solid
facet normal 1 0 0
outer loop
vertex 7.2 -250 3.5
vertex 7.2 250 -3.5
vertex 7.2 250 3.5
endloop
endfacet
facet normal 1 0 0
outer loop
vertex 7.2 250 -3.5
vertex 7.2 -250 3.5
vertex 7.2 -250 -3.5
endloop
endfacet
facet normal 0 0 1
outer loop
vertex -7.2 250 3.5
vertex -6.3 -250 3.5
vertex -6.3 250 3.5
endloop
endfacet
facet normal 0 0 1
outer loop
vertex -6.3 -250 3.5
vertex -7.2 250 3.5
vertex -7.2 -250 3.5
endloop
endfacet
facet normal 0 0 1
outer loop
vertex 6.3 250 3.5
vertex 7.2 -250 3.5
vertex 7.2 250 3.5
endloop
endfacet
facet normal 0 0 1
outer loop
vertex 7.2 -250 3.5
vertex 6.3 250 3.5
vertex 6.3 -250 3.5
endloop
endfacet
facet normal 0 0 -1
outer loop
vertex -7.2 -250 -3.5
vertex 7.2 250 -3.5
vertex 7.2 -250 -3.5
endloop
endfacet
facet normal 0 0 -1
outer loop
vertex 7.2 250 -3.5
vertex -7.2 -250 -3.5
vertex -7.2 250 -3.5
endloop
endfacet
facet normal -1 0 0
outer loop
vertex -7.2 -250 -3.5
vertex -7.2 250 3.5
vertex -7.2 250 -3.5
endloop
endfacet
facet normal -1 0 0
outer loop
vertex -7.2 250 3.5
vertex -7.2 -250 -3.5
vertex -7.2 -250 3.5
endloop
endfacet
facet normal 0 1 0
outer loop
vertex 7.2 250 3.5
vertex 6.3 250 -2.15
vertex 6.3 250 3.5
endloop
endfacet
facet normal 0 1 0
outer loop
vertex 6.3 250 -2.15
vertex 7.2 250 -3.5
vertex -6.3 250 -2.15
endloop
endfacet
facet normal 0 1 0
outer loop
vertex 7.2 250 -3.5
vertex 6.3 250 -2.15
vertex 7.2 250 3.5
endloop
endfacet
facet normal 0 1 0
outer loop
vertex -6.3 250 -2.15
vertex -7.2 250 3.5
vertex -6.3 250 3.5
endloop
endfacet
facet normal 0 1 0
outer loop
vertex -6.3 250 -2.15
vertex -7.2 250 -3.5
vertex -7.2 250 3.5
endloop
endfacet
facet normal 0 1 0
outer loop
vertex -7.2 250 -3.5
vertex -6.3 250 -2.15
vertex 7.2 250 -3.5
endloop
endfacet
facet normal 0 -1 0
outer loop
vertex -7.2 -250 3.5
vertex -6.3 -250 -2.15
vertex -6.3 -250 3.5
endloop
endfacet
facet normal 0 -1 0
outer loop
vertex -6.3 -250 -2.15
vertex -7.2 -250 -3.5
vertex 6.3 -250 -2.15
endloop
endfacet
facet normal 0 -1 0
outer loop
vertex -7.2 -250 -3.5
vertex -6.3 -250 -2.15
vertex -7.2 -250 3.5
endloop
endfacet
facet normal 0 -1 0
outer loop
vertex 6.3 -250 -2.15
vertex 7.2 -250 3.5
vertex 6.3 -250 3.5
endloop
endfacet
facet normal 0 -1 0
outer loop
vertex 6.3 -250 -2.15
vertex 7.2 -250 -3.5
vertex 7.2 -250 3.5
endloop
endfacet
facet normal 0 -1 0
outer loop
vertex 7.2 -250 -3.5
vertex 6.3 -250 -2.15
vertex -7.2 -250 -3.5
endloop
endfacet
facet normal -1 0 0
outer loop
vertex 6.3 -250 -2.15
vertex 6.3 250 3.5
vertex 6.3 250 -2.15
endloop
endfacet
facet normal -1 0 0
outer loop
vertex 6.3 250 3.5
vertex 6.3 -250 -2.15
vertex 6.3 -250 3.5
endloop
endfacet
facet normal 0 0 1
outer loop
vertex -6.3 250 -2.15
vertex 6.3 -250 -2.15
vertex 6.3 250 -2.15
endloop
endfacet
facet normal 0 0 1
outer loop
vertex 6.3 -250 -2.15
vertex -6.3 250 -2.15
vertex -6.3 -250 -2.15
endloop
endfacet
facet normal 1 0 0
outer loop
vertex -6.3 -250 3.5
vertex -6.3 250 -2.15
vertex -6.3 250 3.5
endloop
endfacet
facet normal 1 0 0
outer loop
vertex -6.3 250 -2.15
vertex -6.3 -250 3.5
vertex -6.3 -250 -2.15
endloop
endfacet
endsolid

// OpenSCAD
$fn = 64;

// Parameters
length = 500;
outer_width = 14.4;
outer_depth = 7;
aperture_width = 10.4;
channel_thickness = 0.9;
pcb_thickness = 1.2;

// Main channel
module aluminium_channel() {
    difference() {
        // Outer channel
        cube([outer_width, length, outer_depth], center = true);
        
        // Inner cutout
        translate([0, 0, channel_thickness])
            cube([outer_width - 2 * channel_thickness, length, outer_depth - channel_thickness], center = true);
        
        // Aperture cutout
        translate([0, 0, outer_depth / 2])
            cube([aperture_width, length, outer_depth], center = true);
    }
}

// PCB
module pcb() {
    translate([0, 0, -outer_depth / 2 + pcb_thickness / 2])
        cube([aperture_width, length, pcb_thickness], center = true);
}

// Assemble the LED light strip
module led_light_strip() {
    union() {
        aluminium_channel();
        pcb();
    }
}

// Render the LED light strip
led_light_strip();
